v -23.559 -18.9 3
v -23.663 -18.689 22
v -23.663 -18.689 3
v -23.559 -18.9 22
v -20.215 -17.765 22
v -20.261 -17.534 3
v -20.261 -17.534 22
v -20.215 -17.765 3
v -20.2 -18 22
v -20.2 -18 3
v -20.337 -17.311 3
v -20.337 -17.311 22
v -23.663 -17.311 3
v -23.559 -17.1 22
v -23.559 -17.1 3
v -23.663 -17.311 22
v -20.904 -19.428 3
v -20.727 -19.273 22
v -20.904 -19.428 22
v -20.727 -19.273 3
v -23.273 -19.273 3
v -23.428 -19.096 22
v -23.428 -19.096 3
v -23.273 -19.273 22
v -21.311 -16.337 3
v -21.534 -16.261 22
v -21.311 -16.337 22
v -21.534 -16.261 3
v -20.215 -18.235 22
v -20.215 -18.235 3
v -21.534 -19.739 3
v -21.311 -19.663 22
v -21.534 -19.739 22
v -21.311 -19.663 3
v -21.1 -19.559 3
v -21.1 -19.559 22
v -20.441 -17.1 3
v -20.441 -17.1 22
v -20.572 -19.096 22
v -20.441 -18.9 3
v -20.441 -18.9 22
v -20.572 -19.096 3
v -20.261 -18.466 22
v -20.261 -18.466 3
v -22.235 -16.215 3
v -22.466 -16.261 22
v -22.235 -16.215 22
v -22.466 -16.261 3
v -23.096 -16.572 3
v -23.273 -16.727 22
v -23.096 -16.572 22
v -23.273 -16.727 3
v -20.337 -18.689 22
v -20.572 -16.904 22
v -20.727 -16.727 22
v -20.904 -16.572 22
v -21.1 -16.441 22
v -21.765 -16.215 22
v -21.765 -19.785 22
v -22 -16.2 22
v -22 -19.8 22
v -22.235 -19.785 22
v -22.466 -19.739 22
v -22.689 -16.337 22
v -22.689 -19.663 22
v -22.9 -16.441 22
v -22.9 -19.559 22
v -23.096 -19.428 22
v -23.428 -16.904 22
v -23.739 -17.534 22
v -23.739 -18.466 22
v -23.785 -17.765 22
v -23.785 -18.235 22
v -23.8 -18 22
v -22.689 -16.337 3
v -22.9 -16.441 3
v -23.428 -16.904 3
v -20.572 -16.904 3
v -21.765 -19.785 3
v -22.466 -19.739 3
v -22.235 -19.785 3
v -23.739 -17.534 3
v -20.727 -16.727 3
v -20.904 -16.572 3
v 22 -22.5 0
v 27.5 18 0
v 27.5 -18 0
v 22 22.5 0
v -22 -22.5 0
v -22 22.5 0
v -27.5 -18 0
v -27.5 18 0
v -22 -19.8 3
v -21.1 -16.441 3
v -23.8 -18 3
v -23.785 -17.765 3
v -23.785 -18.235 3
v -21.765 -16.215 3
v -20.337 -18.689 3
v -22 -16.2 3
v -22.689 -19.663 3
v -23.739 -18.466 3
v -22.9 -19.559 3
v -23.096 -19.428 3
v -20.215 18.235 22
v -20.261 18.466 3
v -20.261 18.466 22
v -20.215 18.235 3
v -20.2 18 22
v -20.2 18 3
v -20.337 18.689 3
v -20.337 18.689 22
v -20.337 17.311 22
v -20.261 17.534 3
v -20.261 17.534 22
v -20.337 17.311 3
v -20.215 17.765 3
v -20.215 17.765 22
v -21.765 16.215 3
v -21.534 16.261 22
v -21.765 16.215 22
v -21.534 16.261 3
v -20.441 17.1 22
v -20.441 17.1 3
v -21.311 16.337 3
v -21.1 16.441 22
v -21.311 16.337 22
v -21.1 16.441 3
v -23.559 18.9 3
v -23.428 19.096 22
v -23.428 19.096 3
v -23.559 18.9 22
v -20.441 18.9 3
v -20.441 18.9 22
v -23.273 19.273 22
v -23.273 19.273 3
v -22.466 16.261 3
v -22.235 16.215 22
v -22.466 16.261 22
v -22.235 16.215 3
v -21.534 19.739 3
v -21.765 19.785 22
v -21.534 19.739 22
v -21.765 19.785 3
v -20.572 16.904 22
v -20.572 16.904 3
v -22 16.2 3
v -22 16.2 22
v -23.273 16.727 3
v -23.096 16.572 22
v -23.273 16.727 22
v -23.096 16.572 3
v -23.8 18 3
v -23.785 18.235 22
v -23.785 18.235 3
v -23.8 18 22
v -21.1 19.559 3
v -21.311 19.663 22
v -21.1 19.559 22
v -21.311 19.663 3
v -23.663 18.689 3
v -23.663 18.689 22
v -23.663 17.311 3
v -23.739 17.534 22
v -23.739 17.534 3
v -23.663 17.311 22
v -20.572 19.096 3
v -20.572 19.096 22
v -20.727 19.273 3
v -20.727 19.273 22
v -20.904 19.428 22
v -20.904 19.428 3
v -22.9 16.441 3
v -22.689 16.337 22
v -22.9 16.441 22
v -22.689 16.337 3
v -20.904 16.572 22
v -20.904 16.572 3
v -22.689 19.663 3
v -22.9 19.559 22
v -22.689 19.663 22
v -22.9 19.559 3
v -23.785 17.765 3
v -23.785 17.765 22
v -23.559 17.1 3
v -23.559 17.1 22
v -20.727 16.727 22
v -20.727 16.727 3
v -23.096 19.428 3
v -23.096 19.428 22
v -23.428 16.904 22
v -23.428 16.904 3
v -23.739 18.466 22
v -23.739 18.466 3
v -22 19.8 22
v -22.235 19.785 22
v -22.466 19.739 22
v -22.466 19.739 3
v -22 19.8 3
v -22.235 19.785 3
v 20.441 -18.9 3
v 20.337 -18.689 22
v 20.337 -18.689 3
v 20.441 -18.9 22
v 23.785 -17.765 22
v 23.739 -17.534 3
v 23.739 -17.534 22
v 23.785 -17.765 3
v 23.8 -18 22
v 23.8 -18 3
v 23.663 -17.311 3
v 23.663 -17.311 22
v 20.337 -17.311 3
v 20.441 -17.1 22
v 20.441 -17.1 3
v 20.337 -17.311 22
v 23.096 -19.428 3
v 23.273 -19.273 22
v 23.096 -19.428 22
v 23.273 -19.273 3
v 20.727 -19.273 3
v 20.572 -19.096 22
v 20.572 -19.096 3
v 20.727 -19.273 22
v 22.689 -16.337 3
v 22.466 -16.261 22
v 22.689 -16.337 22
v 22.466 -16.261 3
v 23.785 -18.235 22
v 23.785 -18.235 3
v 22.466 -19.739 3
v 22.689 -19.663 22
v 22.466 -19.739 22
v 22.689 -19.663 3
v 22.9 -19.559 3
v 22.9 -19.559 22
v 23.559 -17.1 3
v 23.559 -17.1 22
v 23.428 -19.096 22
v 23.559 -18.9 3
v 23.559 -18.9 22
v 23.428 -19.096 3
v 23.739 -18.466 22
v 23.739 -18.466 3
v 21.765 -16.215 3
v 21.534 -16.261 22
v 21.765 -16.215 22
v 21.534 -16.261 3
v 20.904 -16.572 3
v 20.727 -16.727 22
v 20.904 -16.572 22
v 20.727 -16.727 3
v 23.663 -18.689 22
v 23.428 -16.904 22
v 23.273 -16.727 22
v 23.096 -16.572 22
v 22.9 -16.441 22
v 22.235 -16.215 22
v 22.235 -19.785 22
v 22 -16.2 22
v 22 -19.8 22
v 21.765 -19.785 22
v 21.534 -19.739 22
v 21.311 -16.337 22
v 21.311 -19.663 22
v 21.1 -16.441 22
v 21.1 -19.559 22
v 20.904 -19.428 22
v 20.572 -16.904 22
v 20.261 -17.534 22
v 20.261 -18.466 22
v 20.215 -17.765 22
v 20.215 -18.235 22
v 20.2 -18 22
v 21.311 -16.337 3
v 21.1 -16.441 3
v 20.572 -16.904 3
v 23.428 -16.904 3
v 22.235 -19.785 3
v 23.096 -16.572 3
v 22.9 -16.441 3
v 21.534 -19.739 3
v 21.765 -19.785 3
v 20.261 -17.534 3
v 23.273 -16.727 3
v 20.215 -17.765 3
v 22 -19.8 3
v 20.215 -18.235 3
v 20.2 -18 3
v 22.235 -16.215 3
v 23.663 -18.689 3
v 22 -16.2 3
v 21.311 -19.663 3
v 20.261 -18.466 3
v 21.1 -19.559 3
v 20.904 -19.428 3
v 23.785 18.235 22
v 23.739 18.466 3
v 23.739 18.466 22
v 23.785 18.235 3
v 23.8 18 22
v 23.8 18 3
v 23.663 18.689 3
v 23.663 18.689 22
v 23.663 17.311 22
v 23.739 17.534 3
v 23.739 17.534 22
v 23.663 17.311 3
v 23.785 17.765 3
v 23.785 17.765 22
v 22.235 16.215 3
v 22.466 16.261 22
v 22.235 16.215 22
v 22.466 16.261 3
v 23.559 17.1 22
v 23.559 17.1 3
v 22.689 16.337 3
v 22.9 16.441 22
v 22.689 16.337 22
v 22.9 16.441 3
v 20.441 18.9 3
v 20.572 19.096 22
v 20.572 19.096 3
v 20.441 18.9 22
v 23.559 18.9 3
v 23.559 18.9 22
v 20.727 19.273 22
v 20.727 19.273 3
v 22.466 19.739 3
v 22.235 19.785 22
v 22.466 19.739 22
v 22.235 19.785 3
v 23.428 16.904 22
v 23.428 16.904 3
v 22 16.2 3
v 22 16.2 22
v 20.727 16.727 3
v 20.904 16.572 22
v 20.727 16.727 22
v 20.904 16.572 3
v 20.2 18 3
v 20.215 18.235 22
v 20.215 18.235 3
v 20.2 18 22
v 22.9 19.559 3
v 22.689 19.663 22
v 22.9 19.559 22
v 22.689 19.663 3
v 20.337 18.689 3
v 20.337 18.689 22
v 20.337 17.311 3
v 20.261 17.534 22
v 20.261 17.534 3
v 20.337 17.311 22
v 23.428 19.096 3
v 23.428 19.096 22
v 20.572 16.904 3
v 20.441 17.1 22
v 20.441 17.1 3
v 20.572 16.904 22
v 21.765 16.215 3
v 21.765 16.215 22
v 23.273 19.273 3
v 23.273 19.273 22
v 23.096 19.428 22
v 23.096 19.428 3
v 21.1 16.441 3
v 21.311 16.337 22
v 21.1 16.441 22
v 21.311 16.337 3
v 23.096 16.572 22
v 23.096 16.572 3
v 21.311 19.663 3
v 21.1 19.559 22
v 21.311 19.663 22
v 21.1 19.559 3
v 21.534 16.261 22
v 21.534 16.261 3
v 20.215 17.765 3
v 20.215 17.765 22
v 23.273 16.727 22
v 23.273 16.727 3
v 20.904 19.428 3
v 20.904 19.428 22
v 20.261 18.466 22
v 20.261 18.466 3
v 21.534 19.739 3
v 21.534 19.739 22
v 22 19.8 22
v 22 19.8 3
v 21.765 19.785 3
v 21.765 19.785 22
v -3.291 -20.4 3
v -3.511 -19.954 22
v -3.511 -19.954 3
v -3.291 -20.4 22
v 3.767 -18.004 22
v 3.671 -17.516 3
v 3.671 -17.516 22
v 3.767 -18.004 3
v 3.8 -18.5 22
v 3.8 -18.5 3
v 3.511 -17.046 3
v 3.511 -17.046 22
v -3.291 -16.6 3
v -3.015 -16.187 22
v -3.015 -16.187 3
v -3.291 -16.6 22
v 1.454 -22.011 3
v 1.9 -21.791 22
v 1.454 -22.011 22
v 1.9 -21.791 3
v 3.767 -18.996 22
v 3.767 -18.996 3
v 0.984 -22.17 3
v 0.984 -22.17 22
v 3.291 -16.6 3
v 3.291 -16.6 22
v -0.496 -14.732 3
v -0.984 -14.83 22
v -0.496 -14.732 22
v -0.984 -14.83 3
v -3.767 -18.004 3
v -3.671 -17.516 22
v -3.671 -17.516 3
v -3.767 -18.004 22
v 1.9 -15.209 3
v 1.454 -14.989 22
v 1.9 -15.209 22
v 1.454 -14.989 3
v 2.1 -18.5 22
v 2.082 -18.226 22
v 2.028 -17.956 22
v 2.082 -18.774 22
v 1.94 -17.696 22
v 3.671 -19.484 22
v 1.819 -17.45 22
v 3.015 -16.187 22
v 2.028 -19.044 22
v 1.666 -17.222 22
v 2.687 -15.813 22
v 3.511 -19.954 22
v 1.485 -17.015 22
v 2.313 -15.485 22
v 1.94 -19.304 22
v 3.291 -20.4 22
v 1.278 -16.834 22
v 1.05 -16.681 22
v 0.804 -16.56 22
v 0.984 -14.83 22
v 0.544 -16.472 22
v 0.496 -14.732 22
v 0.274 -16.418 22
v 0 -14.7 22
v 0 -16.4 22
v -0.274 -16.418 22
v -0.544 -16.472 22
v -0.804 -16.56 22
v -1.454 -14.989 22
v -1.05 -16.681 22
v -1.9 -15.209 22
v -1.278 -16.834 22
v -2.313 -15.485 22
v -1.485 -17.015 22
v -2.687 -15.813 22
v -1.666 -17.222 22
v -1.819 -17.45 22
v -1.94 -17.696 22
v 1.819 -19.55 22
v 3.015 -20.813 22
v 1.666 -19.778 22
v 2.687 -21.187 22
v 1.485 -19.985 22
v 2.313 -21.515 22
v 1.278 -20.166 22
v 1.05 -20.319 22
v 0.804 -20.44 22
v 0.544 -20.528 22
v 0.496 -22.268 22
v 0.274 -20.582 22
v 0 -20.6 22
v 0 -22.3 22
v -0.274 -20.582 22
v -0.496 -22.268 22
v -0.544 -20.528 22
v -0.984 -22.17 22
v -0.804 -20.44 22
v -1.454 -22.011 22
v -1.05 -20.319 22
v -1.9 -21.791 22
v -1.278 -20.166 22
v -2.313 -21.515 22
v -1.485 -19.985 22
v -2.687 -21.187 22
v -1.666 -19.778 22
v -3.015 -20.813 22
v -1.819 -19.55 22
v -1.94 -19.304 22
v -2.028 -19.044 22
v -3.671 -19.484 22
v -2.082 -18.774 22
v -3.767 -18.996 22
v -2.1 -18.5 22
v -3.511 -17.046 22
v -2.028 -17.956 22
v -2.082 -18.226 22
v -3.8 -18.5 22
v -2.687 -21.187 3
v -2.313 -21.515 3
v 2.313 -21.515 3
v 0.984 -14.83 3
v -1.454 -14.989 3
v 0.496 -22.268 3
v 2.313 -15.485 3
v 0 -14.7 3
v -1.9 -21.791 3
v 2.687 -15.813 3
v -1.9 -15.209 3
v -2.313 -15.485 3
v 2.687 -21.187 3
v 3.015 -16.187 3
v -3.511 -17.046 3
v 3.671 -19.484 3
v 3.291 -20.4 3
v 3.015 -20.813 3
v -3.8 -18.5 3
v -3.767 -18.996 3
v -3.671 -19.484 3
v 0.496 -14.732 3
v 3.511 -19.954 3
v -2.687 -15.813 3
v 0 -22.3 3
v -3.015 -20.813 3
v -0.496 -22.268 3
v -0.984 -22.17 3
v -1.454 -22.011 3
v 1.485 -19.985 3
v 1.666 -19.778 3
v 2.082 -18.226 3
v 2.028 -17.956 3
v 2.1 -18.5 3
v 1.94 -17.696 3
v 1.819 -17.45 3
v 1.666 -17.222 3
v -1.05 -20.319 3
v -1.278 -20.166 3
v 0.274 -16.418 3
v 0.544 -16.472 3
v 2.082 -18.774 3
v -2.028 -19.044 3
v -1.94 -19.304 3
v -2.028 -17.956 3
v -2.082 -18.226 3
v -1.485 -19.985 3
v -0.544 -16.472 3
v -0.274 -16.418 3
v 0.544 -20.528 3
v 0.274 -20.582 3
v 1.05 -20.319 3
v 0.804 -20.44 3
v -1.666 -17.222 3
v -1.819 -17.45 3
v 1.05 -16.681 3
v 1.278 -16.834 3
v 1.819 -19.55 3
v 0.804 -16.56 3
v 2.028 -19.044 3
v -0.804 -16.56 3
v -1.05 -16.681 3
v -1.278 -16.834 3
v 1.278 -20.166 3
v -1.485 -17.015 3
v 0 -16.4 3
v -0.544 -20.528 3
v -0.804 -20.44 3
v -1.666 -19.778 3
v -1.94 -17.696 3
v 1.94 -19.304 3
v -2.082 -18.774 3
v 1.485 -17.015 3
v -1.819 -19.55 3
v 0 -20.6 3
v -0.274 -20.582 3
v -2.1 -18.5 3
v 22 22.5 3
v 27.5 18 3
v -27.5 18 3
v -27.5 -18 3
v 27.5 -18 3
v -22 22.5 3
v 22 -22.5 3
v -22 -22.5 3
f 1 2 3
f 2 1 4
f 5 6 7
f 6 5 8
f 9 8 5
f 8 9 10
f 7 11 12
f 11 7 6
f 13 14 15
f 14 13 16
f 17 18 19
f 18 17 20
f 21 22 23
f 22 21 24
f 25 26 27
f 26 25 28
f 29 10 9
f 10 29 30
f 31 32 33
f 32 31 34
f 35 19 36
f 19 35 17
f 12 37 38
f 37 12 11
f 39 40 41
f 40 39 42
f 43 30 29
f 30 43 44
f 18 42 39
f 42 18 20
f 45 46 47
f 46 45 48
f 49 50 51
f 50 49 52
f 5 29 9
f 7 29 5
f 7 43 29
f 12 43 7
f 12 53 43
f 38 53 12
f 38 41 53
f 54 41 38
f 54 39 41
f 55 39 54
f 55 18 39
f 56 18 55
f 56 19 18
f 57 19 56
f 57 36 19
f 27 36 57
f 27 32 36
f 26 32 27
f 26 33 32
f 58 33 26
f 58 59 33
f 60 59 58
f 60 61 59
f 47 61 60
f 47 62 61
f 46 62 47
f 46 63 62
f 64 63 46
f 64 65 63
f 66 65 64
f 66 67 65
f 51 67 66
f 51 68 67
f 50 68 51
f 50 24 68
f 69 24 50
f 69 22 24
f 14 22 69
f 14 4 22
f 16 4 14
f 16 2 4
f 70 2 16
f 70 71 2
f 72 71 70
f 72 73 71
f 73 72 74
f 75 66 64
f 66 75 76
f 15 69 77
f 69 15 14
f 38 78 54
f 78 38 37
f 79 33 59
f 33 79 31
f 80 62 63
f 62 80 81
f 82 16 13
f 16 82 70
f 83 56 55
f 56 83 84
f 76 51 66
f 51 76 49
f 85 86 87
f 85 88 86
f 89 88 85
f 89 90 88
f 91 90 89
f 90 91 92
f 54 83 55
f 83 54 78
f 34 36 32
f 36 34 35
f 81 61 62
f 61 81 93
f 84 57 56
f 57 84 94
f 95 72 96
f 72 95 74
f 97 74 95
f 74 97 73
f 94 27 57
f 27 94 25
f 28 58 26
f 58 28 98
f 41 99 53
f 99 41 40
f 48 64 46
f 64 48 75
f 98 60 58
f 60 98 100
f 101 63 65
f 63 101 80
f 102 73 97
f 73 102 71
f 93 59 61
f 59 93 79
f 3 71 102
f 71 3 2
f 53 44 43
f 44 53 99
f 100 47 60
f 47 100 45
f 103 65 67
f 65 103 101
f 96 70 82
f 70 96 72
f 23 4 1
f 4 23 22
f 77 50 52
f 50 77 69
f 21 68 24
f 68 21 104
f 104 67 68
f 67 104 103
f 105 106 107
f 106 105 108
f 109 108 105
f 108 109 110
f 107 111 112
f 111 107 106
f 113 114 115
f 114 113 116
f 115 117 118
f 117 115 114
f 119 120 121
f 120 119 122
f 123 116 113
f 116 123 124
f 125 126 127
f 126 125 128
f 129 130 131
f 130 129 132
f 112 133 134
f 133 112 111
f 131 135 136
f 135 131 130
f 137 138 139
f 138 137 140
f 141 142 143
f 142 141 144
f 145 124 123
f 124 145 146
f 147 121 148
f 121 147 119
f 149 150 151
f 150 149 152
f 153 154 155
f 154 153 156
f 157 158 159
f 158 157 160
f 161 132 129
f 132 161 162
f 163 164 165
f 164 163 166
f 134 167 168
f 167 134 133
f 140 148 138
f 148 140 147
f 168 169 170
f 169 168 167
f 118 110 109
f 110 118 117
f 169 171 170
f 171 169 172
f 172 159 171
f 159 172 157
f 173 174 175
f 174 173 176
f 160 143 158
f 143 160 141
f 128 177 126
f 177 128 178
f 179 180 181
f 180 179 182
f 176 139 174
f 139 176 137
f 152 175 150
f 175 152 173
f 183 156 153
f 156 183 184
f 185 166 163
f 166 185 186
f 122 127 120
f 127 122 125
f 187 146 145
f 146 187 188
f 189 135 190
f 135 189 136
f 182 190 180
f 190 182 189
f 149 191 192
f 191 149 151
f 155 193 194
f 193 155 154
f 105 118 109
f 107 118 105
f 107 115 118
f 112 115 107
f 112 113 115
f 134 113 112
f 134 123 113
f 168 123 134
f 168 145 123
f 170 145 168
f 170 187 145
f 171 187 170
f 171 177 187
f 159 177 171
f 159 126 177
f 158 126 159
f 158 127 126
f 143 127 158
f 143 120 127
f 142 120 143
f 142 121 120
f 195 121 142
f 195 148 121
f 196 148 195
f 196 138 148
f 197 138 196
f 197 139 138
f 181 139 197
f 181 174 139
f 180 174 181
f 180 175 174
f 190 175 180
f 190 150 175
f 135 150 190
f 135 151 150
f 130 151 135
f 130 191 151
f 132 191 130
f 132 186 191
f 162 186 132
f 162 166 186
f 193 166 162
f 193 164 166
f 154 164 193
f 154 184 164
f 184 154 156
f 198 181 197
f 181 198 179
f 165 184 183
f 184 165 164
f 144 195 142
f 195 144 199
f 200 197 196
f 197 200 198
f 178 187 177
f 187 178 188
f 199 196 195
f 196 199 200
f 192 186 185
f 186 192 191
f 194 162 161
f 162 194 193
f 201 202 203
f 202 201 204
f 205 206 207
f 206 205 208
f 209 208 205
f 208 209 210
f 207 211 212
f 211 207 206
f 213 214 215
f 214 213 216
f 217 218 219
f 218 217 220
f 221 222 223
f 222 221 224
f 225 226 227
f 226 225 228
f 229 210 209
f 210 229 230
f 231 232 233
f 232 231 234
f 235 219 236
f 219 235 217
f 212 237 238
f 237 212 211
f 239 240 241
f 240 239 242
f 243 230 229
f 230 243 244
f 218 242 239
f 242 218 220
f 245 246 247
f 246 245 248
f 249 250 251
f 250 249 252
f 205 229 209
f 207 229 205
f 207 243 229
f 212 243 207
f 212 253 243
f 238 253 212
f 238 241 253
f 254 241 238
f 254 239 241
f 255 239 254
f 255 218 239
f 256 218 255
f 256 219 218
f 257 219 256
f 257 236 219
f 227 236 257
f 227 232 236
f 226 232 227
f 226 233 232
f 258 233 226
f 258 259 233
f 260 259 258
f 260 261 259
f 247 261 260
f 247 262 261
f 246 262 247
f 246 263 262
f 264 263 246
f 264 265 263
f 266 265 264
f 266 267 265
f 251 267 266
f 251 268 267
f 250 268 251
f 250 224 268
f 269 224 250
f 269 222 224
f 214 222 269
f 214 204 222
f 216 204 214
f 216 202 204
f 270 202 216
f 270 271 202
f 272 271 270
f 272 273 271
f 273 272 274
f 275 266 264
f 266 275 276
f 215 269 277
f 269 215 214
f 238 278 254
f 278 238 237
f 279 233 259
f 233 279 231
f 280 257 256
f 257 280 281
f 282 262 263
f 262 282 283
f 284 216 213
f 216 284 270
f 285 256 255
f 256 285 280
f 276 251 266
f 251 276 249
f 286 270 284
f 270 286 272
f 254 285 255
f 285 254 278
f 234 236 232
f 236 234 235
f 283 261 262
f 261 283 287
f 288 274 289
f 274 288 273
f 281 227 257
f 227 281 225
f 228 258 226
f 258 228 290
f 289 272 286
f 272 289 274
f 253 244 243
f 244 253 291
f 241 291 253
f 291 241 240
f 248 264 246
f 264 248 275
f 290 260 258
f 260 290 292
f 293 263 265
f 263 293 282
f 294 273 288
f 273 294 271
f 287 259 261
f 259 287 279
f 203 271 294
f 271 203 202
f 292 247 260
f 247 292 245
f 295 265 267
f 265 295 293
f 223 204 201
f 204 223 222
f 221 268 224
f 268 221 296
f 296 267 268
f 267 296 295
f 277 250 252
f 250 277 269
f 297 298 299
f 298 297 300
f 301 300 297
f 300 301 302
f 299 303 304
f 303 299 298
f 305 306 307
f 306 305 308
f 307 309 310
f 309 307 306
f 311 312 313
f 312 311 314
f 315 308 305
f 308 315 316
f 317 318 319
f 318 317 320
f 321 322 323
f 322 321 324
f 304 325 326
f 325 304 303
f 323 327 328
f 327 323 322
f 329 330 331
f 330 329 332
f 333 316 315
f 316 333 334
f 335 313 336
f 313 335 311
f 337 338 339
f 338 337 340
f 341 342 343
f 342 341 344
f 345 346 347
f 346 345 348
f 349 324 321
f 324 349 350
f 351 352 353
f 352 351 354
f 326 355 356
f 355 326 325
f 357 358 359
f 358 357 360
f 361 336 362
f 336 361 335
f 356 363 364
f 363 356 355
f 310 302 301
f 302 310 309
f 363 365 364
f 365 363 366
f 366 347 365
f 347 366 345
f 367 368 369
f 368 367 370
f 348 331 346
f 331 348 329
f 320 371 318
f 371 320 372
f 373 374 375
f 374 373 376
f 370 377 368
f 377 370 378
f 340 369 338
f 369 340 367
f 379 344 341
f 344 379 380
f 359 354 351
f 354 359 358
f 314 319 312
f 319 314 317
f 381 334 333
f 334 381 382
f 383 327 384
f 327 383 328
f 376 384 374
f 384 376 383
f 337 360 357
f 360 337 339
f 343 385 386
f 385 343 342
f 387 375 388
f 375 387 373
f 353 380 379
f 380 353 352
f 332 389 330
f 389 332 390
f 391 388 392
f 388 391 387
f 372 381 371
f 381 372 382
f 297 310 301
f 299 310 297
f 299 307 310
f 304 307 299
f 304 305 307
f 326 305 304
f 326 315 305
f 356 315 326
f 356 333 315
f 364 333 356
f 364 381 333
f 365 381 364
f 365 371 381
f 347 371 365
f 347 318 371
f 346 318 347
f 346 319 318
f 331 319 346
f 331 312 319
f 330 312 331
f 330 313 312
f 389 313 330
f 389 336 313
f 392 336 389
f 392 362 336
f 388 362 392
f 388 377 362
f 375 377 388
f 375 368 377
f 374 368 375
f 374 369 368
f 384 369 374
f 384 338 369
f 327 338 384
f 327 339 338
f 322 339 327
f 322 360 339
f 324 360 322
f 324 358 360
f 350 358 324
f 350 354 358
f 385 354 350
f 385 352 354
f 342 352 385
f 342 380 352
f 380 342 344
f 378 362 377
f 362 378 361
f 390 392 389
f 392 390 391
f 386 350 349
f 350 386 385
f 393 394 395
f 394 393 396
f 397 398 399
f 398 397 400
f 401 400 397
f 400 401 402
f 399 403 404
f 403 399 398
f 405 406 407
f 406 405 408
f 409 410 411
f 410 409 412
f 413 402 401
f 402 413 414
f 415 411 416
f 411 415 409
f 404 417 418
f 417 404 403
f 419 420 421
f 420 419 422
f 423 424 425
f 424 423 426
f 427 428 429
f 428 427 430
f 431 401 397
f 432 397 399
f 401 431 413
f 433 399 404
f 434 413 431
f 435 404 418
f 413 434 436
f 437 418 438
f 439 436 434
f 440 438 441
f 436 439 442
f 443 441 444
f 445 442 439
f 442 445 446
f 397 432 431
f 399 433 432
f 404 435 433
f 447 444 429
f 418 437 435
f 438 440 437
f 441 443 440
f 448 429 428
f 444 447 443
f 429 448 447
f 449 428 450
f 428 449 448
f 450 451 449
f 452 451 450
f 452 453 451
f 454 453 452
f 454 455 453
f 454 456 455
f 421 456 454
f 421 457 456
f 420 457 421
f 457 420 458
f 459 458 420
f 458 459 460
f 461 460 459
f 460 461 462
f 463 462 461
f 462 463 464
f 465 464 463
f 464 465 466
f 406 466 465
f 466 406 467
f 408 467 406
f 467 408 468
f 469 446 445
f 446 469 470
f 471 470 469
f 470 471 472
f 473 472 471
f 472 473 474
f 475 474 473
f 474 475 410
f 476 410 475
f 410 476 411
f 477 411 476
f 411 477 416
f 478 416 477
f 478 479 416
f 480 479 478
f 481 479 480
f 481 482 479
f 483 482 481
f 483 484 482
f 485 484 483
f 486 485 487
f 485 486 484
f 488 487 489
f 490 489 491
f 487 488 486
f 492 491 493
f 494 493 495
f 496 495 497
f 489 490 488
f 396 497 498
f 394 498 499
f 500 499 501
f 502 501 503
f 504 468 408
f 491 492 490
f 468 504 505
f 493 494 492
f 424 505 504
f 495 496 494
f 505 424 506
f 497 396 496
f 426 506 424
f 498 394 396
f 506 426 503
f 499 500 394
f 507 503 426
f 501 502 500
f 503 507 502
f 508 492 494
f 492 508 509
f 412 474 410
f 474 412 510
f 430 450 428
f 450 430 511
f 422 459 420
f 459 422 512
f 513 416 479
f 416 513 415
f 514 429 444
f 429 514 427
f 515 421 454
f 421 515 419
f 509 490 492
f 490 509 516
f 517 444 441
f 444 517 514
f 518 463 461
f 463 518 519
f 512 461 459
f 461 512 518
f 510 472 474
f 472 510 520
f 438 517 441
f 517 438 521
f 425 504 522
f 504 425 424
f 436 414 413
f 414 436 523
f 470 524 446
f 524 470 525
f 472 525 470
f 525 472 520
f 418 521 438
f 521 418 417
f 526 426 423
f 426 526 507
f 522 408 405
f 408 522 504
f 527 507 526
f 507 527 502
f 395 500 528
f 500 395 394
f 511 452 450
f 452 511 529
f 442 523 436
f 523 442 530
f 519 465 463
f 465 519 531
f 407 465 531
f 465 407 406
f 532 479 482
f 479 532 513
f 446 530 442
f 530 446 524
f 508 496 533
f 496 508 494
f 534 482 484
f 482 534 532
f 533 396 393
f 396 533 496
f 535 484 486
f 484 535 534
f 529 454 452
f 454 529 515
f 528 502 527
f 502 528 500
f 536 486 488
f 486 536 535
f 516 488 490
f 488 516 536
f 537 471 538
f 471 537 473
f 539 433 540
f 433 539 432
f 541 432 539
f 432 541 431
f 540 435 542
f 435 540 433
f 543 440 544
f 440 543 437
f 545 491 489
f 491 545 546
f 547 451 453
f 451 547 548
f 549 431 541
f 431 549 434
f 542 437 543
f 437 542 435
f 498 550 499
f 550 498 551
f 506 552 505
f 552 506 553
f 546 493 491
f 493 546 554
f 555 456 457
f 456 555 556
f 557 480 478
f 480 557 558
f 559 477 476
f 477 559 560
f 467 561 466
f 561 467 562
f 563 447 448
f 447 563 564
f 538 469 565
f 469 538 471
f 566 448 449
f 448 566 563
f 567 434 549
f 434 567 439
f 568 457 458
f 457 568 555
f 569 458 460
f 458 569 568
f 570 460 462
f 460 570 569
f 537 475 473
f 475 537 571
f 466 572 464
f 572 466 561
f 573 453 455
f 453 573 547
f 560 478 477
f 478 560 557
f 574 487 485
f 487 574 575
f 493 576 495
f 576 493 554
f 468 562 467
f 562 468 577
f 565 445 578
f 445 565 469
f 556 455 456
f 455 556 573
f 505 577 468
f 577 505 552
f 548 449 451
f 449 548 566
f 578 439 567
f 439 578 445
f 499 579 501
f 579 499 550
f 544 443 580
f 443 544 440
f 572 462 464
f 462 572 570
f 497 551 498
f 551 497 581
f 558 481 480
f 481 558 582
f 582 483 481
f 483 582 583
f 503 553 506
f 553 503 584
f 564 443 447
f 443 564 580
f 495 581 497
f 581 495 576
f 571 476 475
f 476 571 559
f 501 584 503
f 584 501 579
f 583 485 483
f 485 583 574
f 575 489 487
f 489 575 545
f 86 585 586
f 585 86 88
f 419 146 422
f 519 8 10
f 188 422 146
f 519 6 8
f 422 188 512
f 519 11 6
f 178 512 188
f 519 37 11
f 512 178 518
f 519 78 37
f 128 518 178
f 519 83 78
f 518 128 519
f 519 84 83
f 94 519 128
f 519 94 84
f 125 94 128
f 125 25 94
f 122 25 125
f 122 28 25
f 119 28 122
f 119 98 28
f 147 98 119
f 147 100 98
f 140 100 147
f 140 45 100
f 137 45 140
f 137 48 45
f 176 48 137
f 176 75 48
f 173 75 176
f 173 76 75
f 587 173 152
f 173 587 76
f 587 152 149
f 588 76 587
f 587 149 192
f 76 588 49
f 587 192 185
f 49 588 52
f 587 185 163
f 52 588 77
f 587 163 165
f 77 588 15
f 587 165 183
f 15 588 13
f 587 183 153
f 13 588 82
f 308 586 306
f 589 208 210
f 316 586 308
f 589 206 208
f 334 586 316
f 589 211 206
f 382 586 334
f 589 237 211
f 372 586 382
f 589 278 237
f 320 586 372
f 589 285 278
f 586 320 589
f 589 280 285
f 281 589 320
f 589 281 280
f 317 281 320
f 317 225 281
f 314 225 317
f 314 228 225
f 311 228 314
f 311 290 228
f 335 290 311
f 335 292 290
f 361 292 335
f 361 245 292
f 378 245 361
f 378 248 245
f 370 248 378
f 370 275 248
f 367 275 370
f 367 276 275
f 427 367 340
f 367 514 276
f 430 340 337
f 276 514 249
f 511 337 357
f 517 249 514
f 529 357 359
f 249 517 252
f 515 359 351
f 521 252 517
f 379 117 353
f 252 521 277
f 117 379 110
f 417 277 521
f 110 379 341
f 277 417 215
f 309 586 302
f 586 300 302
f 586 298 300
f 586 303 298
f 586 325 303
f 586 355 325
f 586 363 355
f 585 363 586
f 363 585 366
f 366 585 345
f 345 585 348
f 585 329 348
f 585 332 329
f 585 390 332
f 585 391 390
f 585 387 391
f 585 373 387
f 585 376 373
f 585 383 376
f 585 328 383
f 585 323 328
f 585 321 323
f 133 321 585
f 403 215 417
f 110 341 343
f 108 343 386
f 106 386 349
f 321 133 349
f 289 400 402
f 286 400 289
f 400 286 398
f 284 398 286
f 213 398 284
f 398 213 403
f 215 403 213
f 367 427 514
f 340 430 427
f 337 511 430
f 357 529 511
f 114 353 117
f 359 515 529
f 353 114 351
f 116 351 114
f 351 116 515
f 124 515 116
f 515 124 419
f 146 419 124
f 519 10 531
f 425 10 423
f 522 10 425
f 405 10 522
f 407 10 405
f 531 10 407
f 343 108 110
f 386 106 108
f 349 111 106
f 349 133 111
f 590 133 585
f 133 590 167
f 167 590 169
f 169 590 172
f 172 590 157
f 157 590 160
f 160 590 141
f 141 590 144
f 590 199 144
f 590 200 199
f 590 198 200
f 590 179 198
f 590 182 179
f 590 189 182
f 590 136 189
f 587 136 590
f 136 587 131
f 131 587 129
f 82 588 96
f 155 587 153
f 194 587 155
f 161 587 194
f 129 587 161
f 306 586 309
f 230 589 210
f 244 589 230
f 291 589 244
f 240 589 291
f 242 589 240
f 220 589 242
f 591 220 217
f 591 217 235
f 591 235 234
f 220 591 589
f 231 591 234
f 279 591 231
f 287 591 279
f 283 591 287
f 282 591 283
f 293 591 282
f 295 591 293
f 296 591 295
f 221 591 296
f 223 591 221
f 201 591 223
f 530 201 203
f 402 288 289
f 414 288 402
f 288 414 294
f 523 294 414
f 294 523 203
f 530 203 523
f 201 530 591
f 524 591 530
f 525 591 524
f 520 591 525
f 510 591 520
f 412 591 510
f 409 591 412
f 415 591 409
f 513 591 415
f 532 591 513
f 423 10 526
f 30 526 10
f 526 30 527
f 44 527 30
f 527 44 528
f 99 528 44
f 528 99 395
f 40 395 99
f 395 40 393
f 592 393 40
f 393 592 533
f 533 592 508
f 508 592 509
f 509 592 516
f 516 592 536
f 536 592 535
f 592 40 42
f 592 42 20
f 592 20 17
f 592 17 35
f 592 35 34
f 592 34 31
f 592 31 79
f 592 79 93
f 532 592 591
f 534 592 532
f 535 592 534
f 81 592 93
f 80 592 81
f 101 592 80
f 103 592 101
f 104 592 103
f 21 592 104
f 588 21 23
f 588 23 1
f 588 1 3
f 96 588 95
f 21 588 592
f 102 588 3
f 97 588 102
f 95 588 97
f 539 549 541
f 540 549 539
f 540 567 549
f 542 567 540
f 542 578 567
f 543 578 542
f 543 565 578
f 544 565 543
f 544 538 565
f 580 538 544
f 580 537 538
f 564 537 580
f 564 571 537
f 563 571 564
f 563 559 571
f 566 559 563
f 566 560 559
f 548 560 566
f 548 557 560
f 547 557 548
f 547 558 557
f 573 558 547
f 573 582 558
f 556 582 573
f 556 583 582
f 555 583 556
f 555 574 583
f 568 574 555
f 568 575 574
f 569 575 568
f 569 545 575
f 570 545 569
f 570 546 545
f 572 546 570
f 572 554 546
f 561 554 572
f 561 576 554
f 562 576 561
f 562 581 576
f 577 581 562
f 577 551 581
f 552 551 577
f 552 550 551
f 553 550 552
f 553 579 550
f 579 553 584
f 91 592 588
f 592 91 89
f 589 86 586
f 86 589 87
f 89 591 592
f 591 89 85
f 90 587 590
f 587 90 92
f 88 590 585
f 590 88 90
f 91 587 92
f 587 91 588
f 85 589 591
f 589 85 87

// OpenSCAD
// FLOODSHIFT food & water canopy | 55 x 45 x 22 mm max
// Flat 30 x 30 mm centered ArUco pad; four canopy posts and bowl glyph frame it.
$fn=48;
union(){
  linear_extrude(3) polygon([[-27.5,-18],[-22,-22.5],[22,-22.5],[27.5,-18],[27.5,18],[22,22.5],[-22,22.5],[-27.5,18]]);
  linear_extrude(3) square([30,30],center=true);
  // Tall corner canopy posts, positioned outside the central marker square.
  for(x=[-22,22],y=[-18,18]) translate([x,y,0]) cylinder(r=1.8,h=22);
  // Bowl glyph at the south edge; open ring is printable without supports.
  translate([0,-18.5,0]) difference(){ cylinder(r=3.8,h=22); translate([0,0,-0.1]) cylinder(r=2.1,h=22.2); }
}
